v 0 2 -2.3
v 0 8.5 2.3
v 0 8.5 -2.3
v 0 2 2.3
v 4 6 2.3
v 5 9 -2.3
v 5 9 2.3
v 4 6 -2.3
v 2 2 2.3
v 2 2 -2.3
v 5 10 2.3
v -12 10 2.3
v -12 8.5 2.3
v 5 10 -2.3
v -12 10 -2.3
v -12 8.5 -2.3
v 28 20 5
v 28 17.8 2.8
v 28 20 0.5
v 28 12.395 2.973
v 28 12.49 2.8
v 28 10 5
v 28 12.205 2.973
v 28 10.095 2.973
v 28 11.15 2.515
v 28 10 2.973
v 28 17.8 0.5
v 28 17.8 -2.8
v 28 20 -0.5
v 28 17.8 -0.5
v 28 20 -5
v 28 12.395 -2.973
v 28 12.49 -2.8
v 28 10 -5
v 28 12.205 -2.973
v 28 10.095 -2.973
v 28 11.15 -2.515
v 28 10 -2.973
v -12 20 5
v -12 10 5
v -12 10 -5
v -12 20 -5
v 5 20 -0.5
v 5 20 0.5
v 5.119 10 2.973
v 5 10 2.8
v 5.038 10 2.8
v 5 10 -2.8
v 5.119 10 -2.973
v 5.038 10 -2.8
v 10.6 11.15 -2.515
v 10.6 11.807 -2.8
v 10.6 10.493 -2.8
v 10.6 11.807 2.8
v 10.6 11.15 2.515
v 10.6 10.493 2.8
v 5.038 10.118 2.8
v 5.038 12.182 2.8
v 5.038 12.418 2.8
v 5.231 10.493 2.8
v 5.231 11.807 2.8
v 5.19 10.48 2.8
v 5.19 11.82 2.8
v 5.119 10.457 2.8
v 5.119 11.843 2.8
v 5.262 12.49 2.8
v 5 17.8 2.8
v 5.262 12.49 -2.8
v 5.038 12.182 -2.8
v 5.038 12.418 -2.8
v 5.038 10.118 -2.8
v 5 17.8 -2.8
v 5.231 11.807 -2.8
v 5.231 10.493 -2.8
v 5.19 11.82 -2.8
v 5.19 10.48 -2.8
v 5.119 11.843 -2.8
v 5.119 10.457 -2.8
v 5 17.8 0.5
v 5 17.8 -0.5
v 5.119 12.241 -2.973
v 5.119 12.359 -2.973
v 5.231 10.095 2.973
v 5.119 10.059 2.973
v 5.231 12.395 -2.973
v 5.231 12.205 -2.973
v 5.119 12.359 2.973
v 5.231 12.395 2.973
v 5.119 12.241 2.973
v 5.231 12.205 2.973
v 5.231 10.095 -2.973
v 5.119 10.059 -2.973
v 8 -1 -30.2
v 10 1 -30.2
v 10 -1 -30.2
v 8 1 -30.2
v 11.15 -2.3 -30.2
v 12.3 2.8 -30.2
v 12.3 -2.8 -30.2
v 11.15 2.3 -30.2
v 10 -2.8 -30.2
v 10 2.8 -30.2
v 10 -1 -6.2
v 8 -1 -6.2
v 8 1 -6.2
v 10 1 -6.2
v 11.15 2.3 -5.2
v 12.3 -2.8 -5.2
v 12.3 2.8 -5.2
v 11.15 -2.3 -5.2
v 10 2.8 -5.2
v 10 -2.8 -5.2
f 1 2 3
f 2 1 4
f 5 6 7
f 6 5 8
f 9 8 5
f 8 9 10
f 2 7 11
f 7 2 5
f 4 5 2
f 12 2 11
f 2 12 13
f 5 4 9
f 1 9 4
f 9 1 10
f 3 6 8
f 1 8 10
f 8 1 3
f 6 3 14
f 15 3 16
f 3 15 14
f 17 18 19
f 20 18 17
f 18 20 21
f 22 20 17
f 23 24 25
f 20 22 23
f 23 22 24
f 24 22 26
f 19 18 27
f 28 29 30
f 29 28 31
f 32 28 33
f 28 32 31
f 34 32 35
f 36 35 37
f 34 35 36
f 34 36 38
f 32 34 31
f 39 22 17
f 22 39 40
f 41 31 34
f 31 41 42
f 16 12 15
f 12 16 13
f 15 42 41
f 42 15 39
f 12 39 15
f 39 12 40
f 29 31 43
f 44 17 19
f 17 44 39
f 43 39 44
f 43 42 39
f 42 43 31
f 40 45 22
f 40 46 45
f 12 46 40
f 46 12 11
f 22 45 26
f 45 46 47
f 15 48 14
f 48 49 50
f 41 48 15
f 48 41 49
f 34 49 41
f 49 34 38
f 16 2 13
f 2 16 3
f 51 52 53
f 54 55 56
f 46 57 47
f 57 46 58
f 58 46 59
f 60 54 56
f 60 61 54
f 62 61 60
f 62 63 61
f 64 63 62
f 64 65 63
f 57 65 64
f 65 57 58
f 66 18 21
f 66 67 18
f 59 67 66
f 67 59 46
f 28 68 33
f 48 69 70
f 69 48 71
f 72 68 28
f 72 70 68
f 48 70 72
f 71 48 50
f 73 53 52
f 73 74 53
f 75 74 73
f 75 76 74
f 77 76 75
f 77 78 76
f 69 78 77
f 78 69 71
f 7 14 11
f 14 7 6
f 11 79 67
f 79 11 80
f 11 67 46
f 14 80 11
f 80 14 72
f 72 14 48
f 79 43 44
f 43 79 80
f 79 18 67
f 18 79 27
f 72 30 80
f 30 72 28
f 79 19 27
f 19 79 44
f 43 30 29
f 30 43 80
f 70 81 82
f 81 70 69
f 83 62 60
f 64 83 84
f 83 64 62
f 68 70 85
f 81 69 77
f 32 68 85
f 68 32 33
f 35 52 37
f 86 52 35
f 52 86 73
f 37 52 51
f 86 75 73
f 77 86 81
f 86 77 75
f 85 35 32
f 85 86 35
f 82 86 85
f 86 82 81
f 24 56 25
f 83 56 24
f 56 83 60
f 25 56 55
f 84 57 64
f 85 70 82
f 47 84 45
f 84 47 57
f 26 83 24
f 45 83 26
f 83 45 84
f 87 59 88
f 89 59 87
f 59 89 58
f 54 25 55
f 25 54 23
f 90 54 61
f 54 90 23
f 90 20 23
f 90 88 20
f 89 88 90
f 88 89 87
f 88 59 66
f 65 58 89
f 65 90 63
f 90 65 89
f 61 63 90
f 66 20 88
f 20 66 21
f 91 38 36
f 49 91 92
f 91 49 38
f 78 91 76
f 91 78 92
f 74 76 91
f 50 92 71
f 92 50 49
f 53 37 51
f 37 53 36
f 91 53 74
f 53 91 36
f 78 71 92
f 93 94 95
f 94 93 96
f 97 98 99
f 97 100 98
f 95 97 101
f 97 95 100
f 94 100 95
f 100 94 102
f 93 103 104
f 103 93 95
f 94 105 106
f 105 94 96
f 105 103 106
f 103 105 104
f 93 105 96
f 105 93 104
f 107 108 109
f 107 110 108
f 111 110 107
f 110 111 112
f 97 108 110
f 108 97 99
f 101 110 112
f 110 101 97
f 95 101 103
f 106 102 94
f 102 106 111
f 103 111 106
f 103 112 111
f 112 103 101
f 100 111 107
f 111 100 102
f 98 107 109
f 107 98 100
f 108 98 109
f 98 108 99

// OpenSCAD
n_rounds = 20;
dia = 4.6;
tol = 1;
height = 10;
pusher_length = 12;
$fn = 0;

module pick() {
    translate([5.2, 10, -dia / 2 - tol / 2])
        union() {
        translate([1, -2, dia / 2 - tol / 2])
            cube(size = [pusher_length * 2, dia / 2, 2], center = false);
        rotate([90, 0, 90])
            linear_extrude(height = 25)
            polygon([[0, 0], [0, dia + tol], [dia / 4, dia + tol - tol / 2], [dia / 2, dia + tol], [dia / 2, 0], [dia / 4, tol / 2]] );
    }
}
// #cube(size=[pusher_length, dia/2, dia+tol], center=false);

difference() {
    union() {
        translate([-2, 0, 0])
            linear_extrude(height = dia, center = true)
            polygon([[2, 15], [10, 18], [6, 6], [4, 2], [2, 2]] );
        translate([-pusher_length, 10, -(height) / 2])
            cube(size = [40, height, height], center = false);
        translate([-pusher_length, 8.5, -(dia) / 2])
            cube(size = [pusher_length, 1.5, dia], center = false);
    }
    translate([5, 0.4, -dia / 2 - tol / 2])
        cube(size = [dia + tol, 15 + dia / 2, dia + tol], center = false);
    translate([5, 10 + (height - dia) / 2 - (tol / 2), -dia / 2 - (tol / 2)])
        cube(size = [40 - 8, dia + tol, dia + tol], center = false);
    translate([21, 19, 0])
        cube(size = [40 - 8, 4, tol], center = true);
    minkowski() {
        pick();
        sphere(0.2);
    };
}

rotate([90,90,0])pick();

// difference() {
//     union() {
//         cylinder(r1 = dia / 2 + 0.5, r2 = 10 + 0.5, h = 10, center = false);
//         difference() {
//             // translate([0, 0, -height / 2])
//             //     linear_extrude(height = height, center = true) {
//             //     square(dia, scale = [dia, dia], center = true);
//             // }
//             translate([0, 0, -height / 2 + 2])
//                 // minkowski() {
//                 cube(size = [dia + 0.2, dia + 0.2, 4.5 + 0.2 + 2], center = true);
//                 // sphere(0.4);
//             // }
//             // cylinder(r = dia / 2 + 0.5, h = height / 2, center = true);
//             cylinder(r = dia / 2, h = 2 * height - (height / 2), center = true);
//             translate([0, 0, -height / 2]) rotate([-90, 0, 0]) cylinder(r = dia / 2, h = 2 * height, center = false);
//         }
//     }

//     cylinder(r1 = dia / 2 + 0.1, r2 = 5, h = 10, center = false);
// }

// // difference() {
// // // cone
// // }
